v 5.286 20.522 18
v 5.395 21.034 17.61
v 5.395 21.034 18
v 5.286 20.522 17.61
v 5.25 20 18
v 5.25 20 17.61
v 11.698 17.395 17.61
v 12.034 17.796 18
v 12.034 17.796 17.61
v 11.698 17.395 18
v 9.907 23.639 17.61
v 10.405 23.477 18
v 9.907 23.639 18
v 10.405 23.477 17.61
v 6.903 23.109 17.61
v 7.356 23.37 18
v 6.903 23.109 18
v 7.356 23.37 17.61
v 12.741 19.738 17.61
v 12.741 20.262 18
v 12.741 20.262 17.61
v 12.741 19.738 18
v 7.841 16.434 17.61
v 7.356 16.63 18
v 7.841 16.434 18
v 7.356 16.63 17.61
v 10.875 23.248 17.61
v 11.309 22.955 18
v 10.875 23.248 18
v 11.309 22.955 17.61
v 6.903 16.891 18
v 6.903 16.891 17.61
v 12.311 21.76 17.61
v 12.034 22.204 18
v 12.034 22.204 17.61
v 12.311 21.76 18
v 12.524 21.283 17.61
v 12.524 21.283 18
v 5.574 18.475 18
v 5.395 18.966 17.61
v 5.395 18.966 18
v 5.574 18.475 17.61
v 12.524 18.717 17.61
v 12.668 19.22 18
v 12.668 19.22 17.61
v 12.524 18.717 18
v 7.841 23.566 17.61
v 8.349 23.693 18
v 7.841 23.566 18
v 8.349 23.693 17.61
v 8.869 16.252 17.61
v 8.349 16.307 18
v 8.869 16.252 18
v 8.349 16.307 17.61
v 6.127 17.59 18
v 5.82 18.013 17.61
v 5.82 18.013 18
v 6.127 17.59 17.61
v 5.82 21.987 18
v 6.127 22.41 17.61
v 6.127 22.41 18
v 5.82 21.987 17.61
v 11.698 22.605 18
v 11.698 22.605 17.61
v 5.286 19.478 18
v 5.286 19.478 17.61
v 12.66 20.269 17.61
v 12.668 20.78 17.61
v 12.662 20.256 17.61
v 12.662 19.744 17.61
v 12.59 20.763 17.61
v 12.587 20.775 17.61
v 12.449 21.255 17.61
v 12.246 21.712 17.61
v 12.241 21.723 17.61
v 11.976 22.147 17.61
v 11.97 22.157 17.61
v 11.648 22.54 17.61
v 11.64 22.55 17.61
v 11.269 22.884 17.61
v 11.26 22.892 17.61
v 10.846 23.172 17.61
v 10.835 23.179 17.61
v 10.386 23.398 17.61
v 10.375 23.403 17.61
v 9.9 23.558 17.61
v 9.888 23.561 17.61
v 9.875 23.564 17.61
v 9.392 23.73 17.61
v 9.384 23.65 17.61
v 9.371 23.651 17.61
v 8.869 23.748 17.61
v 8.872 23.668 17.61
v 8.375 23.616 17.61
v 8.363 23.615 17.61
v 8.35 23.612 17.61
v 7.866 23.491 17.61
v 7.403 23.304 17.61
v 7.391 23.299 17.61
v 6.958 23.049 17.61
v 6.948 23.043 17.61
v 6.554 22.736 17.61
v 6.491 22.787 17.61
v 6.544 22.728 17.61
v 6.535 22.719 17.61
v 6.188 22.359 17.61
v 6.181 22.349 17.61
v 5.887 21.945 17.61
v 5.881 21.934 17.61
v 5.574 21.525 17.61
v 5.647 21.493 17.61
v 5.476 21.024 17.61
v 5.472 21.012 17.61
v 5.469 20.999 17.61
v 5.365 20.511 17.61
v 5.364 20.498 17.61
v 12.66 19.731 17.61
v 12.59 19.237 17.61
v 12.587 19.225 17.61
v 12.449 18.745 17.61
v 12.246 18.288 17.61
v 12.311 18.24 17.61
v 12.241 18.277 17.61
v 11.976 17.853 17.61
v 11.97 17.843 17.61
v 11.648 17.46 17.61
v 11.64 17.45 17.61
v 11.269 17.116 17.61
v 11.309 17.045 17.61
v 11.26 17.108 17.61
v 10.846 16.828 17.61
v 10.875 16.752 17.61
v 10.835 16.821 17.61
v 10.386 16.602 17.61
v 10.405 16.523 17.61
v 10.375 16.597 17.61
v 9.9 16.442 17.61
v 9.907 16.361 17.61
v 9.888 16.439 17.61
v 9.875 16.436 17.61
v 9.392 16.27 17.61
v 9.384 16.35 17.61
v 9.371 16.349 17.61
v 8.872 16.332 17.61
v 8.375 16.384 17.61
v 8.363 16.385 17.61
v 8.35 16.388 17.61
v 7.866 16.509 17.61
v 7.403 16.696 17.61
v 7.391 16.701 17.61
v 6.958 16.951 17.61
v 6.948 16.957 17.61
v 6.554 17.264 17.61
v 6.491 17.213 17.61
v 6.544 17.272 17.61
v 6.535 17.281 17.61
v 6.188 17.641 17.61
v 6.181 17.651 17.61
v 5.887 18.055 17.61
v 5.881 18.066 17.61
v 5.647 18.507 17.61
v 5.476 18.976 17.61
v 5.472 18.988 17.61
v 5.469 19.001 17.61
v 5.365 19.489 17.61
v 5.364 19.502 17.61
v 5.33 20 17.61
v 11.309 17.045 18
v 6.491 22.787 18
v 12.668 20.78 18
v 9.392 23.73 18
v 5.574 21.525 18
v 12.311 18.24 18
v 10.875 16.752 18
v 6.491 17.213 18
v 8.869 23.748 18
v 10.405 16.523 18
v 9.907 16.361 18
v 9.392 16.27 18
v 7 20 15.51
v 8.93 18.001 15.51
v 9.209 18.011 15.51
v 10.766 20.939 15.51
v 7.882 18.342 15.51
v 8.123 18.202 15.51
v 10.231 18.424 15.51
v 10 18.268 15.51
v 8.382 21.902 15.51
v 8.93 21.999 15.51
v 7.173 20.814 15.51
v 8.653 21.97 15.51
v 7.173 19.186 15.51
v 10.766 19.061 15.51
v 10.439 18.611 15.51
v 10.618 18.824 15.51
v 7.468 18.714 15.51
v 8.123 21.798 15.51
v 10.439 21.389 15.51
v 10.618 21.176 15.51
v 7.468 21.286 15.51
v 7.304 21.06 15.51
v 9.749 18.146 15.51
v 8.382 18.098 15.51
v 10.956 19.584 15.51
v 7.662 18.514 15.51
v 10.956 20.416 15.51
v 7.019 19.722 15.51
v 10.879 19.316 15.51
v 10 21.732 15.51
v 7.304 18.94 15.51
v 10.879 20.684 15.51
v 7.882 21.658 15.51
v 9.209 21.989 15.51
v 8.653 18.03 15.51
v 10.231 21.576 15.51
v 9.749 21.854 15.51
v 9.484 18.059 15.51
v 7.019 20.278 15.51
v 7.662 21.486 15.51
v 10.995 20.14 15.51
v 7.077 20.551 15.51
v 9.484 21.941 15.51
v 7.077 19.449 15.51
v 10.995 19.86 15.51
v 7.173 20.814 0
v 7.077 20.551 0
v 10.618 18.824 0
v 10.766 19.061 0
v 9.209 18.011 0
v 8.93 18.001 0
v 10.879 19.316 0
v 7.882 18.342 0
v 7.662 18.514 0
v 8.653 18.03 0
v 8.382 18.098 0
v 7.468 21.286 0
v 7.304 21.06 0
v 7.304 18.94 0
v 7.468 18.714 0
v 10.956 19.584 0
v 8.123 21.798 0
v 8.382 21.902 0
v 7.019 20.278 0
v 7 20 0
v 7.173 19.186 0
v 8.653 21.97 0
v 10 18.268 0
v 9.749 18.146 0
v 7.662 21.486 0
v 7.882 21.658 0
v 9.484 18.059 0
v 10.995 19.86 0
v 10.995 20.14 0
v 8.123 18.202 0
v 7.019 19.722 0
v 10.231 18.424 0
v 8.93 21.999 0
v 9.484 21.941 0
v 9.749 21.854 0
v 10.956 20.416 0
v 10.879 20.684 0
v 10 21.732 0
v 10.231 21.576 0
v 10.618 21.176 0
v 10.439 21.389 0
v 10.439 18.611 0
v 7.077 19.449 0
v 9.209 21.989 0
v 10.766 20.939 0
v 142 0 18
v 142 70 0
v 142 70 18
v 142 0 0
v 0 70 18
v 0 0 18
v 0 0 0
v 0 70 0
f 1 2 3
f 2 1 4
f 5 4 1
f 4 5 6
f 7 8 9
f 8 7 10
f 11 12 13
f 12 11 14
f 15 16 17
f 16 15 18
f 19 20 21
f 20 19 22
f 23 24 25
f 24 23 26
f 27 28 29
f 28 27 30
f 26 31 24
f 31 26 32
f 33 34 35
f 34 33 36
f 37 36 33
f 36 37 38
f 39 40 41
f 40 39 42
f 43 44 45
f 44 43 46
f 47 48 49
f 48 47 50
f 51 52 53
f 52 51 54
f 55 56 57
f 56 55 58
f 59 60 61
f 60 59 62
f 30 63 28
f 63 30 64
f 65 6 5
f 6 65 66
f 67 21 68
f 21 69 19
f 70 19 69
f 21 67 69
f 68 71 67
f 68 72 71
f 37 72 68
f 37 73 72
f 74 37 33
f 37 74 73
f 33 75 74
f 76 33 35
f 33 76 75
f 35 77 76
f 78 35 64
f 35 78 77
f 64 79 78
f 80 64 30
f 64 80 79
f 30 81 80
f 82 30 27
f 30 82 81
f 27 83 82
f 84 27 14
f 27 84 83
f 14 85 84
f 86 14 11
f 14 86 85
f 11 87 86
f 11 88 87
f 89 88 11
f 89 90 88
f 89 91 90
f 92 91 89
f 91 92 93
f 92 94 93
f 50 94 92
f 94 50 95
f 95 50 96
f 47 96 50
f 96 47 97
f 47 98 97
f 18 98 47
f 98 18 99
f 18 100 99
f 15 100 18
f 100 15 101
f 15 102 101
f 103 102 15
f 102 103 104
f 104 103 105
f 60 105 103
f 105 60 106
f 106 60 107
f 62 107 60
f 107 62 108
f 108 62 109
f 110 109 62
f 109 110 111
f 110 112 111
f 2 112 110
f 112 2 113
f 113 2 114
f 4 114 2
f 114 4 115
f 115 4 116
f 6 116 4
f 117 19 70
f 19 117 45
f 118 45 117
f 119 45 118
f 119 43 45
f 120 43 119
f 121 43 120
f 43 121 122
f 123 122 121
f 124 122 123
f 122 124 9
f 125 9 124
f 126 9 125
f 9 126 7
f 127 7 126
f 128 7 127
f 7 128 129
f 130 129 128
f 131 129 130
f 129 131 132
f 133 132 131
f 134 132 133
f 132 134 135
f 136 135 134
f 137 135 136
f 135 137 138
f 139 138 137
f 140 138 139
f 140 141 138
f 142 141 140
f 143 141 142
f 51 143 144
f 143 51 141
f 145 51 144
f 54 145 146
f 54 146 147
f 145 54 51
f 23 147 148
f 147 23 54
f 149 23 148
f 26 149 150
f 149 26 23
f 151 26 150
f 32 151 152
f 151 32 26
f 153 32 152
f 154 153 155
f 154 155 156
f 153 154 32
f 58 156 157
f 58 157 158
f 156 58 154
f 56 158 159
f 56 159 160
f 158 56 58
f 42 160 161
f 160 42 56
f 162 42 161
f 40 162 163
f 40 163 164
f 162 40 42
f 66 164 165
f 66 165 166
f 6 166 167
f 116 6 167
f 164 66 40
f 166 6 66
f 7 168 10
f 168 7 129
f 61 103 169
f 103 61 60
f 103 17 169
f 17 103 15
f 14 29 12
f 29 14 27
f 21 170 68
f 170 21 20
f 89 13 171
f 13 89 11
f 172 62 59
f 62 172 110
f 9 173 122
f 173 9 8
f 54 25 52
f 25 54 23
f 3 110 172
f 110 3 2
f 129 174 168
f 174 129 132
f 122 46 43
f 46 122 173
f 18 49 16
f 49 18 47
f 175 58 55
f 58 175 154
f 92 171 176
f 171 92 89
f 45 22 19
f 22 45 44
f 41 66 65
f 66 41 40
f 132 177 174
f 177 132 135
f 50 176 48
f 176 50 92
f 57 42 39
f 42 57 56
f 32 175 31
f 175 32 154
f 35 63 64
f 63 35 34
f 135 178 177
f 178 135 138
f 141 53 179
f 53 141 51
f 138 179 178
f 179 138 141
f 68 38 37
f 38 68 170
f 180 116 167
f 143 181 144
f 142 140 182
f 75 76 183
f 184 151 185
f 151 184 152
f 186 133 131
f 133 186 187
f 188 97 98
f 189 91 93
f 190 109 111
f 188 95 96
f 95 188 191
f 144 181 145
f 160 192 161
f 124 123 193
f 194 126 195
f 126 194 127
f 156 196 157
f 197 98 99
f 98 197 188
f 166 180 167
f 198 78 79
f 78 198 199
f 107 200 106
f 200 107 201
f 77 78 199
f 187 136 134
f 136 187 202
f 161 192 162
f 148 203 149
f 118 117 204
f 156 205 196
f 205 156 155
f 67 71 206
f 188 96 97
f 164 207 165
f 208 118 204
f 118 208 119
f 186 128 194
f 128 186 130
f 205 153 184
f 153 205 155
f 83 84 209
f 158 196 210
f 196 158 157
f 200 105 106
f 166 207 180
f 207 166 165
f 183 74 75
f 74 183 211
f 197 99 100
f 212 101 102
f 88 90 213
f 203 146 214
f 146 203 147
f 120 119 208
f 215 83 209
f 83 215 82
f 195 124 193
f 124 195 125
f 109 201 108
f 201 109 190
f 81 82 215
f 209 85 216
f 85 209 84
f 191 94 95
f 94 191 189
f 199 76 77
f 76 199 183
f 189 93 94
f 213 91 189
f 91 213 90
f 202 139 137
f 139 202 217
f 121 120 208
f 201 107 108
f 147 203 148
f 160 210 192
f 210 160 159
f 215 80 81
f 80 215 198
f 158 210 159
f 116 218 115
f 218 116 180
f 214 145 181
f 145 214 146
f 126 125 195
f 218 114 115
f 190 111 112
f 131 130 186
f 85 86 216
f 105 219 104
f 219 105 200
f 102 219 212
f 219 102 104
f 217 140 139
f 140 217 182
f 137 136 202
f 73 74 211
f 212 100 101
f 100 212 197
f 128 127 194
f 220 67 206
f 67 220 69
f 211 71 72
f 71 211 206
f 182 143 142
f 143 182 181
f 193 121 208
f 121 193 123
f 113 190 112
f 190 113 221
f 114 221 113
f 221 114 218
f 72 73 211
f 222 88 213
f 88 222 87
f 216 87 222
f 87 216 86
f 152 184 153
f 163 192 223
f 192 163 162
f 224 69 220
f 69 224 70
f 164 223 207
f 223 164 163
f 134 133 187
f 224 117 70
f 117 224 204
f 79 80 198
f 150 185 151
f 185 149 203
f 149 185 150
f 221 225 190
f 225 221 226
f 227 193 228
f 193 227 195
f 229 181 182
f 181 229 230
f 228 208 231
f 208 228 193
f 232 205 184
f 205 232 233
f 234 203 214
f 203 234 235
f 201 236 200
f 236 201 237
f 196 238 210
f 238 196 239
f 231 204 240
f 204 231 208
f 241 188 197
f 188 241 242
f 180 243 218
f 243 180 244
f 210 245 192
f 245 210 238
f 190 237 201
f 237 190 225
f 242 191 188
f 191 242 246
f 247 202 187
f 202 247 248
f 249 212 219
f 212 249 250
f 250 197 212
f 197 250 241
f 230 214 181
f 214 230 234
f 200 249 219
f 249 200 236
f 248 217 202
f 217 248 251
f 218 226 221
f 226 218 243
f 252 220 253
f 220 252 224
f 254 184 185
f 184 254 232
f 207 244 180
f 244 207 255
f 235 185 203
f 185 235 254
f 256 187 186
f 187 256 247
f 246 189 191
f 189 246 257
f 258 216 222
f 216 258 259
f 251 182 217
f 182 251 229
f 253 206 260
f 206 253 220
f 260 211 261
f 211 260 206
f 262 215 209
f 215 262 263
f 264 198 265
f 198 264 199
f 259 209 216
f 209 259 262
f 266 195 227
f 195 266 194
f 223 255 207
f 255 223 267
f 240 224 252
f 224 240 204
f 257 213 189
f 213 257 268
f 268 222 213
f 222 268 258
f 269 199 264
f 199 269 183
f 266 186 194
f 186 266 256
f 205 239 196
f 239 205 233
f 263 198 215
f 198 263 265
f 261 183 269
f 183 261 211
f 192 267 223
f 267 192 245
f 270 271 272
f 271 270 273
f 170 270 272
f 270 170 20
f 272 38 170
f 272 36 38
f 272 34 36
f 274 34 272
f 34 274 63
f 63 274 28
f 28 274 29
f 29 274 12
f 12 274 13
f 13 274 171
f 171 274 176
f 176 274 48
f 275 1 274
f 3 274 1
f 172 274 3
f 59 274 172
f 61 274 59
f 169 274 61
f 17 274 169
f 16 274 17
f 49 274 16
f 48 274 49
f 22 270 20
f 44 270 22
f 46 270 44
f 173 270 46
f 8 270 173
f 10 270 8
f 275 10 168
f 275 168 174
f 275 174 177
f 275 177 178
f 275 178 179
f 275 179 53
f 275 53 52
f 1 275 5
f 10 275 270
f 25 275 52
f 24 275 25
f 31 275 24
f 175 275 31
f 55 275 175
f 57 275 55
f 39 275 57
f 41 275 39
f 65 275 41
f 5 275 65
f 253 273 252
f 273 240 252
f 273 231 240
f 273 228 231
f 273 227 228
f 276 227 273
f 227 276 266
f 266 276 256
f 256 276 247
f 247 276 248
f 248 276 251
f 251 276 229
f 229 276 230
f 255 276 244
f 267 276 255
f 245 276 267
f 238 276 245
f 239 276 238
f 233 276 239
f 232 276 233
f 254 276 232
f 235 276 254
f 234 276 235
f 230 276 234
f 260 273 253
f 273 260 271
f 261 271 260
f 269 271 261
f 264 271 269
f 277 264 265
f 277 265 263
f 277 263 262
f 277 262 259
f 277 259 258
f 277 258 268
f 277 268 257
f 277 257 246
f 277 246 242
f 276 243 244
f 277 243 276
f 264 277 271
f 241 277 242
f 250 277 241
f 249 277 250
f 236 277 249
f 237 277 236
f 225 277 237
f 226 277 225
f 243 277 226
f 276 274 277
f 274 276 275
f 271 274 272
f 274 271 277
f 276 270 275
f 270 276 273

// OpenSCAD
// file: screw-hole.scad
// Generic screw holder

// Copyright (C) 2021 Jeremy Bennett <jeremy@jeremybennett.com>

// Contributor Jeremy Bennett <jeremy@jeremybennett.com>

// SPDX-License-Identifier: CC-BY-SA-4.0


// The countersink height is calculated as:
//
//      x - y
//    ----------
//    2 tan(B/2)
//
// where x is the head diameter, y is the shank diameter and B is the head
// angle (100 degrees for DIN 7997x I believe).
//
// Table of 2 tan(B/2) for various B
//
//  60    1.1547
//  82    1.7386
//  90    2.0000
// 100    2.3835
// 110    2.8563

// Small amount
CS_EPS = 0.1;

// Height of rim above countersink
CS_RIM_HEIGHT = 0.3;

// Screw height - effectively infinite!
SCREW_HEIGHT = 100;

// Table of screw dimensions for DIN 7997z countersunk wood screws
// Entry is thread diameter, head diameter, head height.
SCREW_TAB = [ [2.5,  4.7, 1.50],
	      [3.0,  5.6, 1.65],
	      [3.5,  6.5, 1.93],
	      [4.0,  7.5, 2.20],
	      [4.5,  8.3, 2.35],
	      [5.0,  9.2, 2.50],
	      [5.5, 10.2, 2.75],
	      [6.0, 11.0, 3.00],
              [0.0,  0.0, 0.00] ];		// End marker

// Recursively look up dimensions in the SCREW_TAB
function recursive_screw_dims (diam, n) =
     ( (SCREW_TAB[n][0] == 0.0) ? SCREW_TAB[n] :
       (SCREW_TAB[n][0] == diam) ? SCREW_TAB[n] :
       recursive_screw_dims (diam, n + 1) );

// Look up a screw's dimensions
function screw_dims (diam = 4.0) = recursive_screw_dims (diam, 0);

// Hole for a countersink screw
module screw_hole (shank_diam, invert = true) {
     let (dims = screw_dims (shank_diam),
	  head_diam = dims[1],
	  cs_height = dims[2],
	  screw_angle = invert ? 180 : 0) {
	  rotate (a = [0, screw_angle, 0]) {
	       cylinder(r = head_diam / 2, h = CS_RIM_HEIGHT + CS_EPS,
			center = false, $fn = 45);
	       translate(v = [0, 0, CS_RIM_HEIGHT])
	            cylinder(r1 = head_diam / 2, r2 = shank_diam / 2,
			     h = cs_height, center = false, $fn = 45);
	       cylinder(r = shank_diam / 2, h = SCREW_HEIGHT, center = false,
			$fn = 45);
	  }
     }
}
// main file
// Base side support
//
// Copyright (C) 2021 Jeremy Bennett <jeremy@jeremybennett.com>
// Contributor Jeremy Bennett <jeremy@jeremybennett.com>
//
// This is part of the open source laptop stand
//
// SPDX-License-Identifier: CC-BY-SA-4.0

// The support for the side of the base

include <screw-hole.scad>

EPS = 0.01;
D = 18.0;

difference () {
     // The board
     cube (size = [160 - D, 70.0, D], center = false);
     // 4.0mm side screw to backboard
     translate (v = [9.0, 20.0, D + EPS])
	  screw_hole (4.0, true);
}
